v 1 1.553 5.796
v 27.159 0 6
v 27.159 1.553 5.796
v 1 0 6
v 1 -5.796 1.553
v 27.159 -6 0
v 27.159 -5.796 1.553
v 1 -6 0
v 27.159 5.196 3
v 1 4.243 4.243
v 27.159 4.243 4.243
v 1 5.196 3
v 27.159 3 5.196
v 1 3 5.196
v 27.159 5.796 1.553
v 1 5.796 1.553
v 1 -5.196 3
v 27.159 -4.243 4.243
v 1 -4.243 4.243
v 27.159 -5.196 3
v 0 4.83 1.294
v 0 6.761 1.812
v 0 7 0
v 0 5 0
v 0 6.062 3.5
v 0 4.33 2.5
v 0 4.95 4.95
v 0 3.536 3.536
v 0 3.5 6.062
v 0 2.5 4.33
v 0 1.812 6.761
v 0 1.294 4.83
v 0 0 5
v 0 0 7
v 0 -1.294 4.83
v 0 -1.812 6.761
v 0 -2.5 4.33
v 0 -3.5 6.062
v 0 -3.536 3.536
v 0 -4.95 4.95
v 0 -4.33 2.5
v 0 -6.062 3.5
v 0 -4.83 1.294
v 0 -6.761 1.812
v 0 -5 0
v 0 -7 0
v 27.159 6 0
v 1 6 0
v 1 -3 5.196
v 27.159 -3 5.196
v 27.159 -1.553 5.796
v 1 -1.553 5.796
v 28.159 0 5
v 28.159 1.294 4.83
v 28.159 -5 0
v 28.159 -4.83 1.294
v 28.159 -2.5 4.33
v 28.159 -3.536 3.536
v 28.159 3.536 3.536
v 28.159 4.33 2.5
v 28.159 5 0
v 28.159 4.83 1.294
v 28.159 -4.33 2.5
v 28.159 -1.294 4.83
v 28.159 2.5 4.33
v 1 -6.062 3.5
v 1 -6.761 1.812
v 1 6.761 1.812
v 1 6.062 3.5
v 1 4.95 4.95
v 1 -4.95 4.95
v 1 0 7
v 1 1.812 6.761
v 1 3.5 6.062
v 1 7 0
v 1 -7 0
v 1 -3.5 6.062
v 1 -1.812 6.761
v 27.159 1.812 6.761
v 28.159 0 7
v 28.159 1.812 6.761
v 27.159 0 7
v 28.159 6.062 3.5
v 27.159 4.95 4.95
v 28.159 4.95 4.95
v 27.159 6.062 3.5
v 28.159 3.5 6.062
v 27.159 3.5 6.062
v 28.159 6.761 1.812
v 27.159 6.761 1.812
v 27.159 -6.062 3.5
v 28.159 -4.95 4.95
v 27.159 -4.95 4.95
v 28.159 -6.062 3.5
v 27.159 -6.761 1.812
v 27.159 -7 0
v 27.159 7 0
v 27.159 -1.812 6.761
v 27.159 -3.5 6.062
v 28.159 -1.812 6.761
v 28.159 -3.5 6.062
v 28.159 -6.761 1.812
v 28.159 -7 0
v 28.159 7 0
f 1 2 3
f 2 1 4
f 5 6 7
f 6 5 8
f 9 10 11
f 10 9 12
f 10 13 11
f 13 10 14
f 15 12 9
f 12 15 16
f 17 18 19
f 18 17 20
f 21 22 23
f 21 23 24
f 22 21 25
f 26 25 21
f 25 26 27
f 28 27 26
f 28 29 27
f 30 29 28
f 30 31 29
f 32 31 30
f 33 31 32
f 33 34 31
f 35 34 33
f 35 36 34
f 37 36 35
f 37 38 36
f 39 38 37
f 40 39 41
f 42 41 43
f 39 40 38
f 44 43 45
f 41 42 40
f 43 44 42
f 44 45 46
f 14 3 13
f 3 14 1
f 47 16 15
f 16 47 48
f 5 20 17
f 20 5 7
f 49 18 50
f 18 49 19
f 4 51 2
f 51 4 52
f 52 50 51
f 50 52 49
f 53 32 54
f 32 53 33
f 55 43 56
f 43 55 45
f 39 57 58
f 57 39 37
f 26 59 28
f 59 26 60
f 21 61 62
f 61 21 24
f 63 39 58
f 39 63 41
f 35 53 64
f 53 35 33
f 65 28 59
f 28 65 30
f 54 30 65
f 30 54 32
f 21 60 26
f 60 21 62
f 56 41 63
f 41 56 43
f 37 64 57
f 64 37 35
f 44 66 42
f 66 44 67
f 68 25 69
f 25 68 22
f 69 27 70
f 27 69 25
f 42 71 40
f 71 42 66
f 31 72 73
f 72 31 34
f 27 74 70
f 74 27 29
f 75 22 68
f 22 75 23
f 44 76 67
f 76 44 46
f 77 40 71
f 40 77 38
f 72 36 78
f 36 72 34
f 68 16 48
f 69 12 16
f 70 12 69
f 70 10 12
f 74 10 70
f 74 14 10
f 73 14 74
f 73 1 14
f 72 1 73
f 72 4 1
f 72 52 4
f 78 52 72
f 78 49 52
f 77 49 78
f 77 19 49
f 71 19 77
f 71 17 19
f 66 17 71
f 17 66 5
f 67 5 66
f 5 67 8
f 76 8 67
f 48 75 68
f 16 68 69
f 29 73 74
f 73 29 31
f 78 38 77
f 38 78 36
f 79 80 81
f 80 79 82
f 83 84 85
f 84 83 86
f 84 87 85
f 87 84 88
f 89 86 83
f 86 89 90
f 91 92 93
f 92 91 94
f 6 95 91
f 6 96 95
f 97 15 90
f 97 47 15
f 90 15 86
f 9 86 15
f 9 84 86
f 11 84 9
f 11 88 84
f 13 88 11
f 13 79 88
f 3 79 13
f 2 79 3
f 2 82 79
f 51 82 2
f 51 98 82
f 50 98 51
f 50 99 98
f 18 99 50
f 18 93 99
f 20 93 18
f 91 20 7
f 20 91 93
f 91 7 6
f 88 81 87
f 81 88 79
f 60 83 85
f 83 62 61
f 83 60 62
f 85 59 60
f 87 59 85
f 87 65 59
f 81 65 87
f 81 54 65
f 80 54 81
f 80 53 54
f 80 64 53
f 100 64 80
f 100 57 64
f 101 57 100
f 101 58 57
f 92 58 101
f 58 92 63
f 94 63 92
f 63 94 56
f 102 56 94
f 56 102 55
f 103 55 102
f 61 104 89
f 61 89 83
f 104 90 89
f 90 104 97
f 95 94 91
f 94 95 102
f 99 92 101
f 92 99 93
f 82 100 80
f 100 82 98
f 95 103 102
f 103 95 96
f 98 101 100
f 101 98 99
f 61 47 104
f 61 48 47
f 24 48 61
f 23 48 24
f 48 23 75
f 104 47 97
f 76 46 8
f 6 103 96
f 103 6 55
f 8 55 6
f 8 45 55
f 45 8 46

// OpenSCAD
// file: ../build_environments.scad
// build_environments.scad: modules to build level sections
//

module pool(diameter=10.0, wall_height=2.0, step_width=3.0, connections=[])
{
    difference() {
        union() {
        difference() {
            cylinder(h=0.5,r1=diameter+step_width,r2=diameter+step_width,$fn=48);
            translate([0,0,-0.1])
                cylinder(h=0.7,r1=diameter,r2=diameter,$fn=48);
        }
        difference() {
            cylinder(h=wall_height,r1=diameter+step_width+1.0,r2=diameter+step_width+1.0,$fn=48);
            translate([0,0,-0.1])
                cylinder(h=wall_height+0.2,r1=diameter+step_width,r2=diameter+step_width,$fn=48);
        }
        }
    
        for (c = connections)
        {
            rotate([0,90,0]) {
                angle = atan2(c[1],c[0]);
                rotate([-angle,0,0]) {
                    cylinder(h=diameter+5.0,r1=c[2],r2=c[2],$fn=48);
                }
            }
        }
    }
}

module straight(length=10.0, width=2.0, dy1=0.0, dy2=0.0, dz=0.0)
{
    dims = [0, 0, 0, 0, 0, (dz/length)];
    matrix = [
        [ 1, dims[0], dims[1], 0 ],
        [ dims[2], 1, dims[4], 0 ],
        [ dims[5], dims[3], 1, 0 ],
        [ 0, 0, 0, 1 ]
    ];
    multmatrix(matrix)
    difference() {
        translate([dy1,0,0])
        union() {
            rotate([0,90,0]) {
                difference() {
                    cylinder(h=(length-dy1-dy2),r1=width+1.0,r2=width+1.0,$fn=24);
                    translate([0,0,-0.1])
                        cylinder(h=(length-dy1-dy2+0.2),r1=width,r2=width,$fn=24);
                }
                difference() {
                    cylinder(h=1.0,r1=width+2.0,r2=width+2.0,$fn=24);
                    translate([0,0,-0.1])
                        cylinder(h=1.2,r1=width,r2=width,$fn=24);
                }
                translate([0,0,(length-dy1-dy2)-1.0]) {
                    difference() {
                        cylinder(h=1.0,r1=width+2.0,r2=width+2.0,$fn=24);
                        translate([0,0,-0.1])
                            cylinder(h=1.2,r1=width,r2=width,$fn=24);
                    }
                }
            }
        }
        translate([0,0,-(2*width+4.0)/2])
            cube([3*length,3*length,2*width+4.0],center=true);
    }
}

module curve(p0=[0,0], center=[0,0], dir=1, angle=0.0, width=2.0)
{
    radius = sqrt((p0[0]-center[0])*(p0[0]-center[0]) + (p0[1]-center[1])*(p0[1]-center[1]));
    if (dir == 0) {
        difference() {
            rotate([0,0,-90])
            difference() {
                rotate_extrude(angle = angle, convexity = 10, $fn=32)
                    translate([radius, 0, 0])
                        circle(r = width+1.0,$fn=24);
                rotate([0,0,-1.0])
                    rotate_extrude(angle = angle+2.0, convexity = 10, $fn=32)
                        translate([radius, 0, 0])
                            circle(r = width,$fn=24);
            }
            translate([0,0,-(2*width+4.0)/2])
                cube([5*radius,5*radius,2*width+4.0],center=true);
        }
    }
    else {
        difference() {
            rotate([0,0,90])
            difference() {
                rotate_extrude(angle = -angle, convexity = 10, $fn=32)
                    translate([radius, 0, 0])
                        circle(r = width+1.0,$fn=24);
                rotate([0,0,1.0])
                    rotate_extrude(angle = -angle-2.0, convexity = 10, $fn=32)
                        translate([radius, 0, 0])
                            circle(r = width,$fn=24);
            }
            translate([0,0,-(2*width+4.0)/2])
                cube([5*radius,5*radius,2*width+4.0],center=true);
        }
    }

}

// test pool
//pool(diameter=12.0000, wall_height=3.0000, step_width=3.0000, connections=[[0.0000,-26.0000,2.0000], [23.6074,0.0000,2.0000]]);

// test straight, slope
//straight(length=26.0000, width=2.0000, dy1=11.8322, dy2=6.7082, dz=0.0000);
//straight(length=29.1549, width=12.0000, dy1=0.0000, dy2=0.0000, dz=-15.0000);

// test curve
//curve(p0=[23.6074, 0.0000], center=[23.6074, 5.0000], dir=0, angle=60.1011, width=2.0000);
//curve(p0=[33.6426, 12.4219], center=[37.9771, 9.9295], dir=1, angle=120.4627, width=2.0000);
// main file
use <../build_environments.scad>;
straight(length=28.1587, width=5.0000, dy1=0.0000, dy2=0.0000, dz=0.0000);
